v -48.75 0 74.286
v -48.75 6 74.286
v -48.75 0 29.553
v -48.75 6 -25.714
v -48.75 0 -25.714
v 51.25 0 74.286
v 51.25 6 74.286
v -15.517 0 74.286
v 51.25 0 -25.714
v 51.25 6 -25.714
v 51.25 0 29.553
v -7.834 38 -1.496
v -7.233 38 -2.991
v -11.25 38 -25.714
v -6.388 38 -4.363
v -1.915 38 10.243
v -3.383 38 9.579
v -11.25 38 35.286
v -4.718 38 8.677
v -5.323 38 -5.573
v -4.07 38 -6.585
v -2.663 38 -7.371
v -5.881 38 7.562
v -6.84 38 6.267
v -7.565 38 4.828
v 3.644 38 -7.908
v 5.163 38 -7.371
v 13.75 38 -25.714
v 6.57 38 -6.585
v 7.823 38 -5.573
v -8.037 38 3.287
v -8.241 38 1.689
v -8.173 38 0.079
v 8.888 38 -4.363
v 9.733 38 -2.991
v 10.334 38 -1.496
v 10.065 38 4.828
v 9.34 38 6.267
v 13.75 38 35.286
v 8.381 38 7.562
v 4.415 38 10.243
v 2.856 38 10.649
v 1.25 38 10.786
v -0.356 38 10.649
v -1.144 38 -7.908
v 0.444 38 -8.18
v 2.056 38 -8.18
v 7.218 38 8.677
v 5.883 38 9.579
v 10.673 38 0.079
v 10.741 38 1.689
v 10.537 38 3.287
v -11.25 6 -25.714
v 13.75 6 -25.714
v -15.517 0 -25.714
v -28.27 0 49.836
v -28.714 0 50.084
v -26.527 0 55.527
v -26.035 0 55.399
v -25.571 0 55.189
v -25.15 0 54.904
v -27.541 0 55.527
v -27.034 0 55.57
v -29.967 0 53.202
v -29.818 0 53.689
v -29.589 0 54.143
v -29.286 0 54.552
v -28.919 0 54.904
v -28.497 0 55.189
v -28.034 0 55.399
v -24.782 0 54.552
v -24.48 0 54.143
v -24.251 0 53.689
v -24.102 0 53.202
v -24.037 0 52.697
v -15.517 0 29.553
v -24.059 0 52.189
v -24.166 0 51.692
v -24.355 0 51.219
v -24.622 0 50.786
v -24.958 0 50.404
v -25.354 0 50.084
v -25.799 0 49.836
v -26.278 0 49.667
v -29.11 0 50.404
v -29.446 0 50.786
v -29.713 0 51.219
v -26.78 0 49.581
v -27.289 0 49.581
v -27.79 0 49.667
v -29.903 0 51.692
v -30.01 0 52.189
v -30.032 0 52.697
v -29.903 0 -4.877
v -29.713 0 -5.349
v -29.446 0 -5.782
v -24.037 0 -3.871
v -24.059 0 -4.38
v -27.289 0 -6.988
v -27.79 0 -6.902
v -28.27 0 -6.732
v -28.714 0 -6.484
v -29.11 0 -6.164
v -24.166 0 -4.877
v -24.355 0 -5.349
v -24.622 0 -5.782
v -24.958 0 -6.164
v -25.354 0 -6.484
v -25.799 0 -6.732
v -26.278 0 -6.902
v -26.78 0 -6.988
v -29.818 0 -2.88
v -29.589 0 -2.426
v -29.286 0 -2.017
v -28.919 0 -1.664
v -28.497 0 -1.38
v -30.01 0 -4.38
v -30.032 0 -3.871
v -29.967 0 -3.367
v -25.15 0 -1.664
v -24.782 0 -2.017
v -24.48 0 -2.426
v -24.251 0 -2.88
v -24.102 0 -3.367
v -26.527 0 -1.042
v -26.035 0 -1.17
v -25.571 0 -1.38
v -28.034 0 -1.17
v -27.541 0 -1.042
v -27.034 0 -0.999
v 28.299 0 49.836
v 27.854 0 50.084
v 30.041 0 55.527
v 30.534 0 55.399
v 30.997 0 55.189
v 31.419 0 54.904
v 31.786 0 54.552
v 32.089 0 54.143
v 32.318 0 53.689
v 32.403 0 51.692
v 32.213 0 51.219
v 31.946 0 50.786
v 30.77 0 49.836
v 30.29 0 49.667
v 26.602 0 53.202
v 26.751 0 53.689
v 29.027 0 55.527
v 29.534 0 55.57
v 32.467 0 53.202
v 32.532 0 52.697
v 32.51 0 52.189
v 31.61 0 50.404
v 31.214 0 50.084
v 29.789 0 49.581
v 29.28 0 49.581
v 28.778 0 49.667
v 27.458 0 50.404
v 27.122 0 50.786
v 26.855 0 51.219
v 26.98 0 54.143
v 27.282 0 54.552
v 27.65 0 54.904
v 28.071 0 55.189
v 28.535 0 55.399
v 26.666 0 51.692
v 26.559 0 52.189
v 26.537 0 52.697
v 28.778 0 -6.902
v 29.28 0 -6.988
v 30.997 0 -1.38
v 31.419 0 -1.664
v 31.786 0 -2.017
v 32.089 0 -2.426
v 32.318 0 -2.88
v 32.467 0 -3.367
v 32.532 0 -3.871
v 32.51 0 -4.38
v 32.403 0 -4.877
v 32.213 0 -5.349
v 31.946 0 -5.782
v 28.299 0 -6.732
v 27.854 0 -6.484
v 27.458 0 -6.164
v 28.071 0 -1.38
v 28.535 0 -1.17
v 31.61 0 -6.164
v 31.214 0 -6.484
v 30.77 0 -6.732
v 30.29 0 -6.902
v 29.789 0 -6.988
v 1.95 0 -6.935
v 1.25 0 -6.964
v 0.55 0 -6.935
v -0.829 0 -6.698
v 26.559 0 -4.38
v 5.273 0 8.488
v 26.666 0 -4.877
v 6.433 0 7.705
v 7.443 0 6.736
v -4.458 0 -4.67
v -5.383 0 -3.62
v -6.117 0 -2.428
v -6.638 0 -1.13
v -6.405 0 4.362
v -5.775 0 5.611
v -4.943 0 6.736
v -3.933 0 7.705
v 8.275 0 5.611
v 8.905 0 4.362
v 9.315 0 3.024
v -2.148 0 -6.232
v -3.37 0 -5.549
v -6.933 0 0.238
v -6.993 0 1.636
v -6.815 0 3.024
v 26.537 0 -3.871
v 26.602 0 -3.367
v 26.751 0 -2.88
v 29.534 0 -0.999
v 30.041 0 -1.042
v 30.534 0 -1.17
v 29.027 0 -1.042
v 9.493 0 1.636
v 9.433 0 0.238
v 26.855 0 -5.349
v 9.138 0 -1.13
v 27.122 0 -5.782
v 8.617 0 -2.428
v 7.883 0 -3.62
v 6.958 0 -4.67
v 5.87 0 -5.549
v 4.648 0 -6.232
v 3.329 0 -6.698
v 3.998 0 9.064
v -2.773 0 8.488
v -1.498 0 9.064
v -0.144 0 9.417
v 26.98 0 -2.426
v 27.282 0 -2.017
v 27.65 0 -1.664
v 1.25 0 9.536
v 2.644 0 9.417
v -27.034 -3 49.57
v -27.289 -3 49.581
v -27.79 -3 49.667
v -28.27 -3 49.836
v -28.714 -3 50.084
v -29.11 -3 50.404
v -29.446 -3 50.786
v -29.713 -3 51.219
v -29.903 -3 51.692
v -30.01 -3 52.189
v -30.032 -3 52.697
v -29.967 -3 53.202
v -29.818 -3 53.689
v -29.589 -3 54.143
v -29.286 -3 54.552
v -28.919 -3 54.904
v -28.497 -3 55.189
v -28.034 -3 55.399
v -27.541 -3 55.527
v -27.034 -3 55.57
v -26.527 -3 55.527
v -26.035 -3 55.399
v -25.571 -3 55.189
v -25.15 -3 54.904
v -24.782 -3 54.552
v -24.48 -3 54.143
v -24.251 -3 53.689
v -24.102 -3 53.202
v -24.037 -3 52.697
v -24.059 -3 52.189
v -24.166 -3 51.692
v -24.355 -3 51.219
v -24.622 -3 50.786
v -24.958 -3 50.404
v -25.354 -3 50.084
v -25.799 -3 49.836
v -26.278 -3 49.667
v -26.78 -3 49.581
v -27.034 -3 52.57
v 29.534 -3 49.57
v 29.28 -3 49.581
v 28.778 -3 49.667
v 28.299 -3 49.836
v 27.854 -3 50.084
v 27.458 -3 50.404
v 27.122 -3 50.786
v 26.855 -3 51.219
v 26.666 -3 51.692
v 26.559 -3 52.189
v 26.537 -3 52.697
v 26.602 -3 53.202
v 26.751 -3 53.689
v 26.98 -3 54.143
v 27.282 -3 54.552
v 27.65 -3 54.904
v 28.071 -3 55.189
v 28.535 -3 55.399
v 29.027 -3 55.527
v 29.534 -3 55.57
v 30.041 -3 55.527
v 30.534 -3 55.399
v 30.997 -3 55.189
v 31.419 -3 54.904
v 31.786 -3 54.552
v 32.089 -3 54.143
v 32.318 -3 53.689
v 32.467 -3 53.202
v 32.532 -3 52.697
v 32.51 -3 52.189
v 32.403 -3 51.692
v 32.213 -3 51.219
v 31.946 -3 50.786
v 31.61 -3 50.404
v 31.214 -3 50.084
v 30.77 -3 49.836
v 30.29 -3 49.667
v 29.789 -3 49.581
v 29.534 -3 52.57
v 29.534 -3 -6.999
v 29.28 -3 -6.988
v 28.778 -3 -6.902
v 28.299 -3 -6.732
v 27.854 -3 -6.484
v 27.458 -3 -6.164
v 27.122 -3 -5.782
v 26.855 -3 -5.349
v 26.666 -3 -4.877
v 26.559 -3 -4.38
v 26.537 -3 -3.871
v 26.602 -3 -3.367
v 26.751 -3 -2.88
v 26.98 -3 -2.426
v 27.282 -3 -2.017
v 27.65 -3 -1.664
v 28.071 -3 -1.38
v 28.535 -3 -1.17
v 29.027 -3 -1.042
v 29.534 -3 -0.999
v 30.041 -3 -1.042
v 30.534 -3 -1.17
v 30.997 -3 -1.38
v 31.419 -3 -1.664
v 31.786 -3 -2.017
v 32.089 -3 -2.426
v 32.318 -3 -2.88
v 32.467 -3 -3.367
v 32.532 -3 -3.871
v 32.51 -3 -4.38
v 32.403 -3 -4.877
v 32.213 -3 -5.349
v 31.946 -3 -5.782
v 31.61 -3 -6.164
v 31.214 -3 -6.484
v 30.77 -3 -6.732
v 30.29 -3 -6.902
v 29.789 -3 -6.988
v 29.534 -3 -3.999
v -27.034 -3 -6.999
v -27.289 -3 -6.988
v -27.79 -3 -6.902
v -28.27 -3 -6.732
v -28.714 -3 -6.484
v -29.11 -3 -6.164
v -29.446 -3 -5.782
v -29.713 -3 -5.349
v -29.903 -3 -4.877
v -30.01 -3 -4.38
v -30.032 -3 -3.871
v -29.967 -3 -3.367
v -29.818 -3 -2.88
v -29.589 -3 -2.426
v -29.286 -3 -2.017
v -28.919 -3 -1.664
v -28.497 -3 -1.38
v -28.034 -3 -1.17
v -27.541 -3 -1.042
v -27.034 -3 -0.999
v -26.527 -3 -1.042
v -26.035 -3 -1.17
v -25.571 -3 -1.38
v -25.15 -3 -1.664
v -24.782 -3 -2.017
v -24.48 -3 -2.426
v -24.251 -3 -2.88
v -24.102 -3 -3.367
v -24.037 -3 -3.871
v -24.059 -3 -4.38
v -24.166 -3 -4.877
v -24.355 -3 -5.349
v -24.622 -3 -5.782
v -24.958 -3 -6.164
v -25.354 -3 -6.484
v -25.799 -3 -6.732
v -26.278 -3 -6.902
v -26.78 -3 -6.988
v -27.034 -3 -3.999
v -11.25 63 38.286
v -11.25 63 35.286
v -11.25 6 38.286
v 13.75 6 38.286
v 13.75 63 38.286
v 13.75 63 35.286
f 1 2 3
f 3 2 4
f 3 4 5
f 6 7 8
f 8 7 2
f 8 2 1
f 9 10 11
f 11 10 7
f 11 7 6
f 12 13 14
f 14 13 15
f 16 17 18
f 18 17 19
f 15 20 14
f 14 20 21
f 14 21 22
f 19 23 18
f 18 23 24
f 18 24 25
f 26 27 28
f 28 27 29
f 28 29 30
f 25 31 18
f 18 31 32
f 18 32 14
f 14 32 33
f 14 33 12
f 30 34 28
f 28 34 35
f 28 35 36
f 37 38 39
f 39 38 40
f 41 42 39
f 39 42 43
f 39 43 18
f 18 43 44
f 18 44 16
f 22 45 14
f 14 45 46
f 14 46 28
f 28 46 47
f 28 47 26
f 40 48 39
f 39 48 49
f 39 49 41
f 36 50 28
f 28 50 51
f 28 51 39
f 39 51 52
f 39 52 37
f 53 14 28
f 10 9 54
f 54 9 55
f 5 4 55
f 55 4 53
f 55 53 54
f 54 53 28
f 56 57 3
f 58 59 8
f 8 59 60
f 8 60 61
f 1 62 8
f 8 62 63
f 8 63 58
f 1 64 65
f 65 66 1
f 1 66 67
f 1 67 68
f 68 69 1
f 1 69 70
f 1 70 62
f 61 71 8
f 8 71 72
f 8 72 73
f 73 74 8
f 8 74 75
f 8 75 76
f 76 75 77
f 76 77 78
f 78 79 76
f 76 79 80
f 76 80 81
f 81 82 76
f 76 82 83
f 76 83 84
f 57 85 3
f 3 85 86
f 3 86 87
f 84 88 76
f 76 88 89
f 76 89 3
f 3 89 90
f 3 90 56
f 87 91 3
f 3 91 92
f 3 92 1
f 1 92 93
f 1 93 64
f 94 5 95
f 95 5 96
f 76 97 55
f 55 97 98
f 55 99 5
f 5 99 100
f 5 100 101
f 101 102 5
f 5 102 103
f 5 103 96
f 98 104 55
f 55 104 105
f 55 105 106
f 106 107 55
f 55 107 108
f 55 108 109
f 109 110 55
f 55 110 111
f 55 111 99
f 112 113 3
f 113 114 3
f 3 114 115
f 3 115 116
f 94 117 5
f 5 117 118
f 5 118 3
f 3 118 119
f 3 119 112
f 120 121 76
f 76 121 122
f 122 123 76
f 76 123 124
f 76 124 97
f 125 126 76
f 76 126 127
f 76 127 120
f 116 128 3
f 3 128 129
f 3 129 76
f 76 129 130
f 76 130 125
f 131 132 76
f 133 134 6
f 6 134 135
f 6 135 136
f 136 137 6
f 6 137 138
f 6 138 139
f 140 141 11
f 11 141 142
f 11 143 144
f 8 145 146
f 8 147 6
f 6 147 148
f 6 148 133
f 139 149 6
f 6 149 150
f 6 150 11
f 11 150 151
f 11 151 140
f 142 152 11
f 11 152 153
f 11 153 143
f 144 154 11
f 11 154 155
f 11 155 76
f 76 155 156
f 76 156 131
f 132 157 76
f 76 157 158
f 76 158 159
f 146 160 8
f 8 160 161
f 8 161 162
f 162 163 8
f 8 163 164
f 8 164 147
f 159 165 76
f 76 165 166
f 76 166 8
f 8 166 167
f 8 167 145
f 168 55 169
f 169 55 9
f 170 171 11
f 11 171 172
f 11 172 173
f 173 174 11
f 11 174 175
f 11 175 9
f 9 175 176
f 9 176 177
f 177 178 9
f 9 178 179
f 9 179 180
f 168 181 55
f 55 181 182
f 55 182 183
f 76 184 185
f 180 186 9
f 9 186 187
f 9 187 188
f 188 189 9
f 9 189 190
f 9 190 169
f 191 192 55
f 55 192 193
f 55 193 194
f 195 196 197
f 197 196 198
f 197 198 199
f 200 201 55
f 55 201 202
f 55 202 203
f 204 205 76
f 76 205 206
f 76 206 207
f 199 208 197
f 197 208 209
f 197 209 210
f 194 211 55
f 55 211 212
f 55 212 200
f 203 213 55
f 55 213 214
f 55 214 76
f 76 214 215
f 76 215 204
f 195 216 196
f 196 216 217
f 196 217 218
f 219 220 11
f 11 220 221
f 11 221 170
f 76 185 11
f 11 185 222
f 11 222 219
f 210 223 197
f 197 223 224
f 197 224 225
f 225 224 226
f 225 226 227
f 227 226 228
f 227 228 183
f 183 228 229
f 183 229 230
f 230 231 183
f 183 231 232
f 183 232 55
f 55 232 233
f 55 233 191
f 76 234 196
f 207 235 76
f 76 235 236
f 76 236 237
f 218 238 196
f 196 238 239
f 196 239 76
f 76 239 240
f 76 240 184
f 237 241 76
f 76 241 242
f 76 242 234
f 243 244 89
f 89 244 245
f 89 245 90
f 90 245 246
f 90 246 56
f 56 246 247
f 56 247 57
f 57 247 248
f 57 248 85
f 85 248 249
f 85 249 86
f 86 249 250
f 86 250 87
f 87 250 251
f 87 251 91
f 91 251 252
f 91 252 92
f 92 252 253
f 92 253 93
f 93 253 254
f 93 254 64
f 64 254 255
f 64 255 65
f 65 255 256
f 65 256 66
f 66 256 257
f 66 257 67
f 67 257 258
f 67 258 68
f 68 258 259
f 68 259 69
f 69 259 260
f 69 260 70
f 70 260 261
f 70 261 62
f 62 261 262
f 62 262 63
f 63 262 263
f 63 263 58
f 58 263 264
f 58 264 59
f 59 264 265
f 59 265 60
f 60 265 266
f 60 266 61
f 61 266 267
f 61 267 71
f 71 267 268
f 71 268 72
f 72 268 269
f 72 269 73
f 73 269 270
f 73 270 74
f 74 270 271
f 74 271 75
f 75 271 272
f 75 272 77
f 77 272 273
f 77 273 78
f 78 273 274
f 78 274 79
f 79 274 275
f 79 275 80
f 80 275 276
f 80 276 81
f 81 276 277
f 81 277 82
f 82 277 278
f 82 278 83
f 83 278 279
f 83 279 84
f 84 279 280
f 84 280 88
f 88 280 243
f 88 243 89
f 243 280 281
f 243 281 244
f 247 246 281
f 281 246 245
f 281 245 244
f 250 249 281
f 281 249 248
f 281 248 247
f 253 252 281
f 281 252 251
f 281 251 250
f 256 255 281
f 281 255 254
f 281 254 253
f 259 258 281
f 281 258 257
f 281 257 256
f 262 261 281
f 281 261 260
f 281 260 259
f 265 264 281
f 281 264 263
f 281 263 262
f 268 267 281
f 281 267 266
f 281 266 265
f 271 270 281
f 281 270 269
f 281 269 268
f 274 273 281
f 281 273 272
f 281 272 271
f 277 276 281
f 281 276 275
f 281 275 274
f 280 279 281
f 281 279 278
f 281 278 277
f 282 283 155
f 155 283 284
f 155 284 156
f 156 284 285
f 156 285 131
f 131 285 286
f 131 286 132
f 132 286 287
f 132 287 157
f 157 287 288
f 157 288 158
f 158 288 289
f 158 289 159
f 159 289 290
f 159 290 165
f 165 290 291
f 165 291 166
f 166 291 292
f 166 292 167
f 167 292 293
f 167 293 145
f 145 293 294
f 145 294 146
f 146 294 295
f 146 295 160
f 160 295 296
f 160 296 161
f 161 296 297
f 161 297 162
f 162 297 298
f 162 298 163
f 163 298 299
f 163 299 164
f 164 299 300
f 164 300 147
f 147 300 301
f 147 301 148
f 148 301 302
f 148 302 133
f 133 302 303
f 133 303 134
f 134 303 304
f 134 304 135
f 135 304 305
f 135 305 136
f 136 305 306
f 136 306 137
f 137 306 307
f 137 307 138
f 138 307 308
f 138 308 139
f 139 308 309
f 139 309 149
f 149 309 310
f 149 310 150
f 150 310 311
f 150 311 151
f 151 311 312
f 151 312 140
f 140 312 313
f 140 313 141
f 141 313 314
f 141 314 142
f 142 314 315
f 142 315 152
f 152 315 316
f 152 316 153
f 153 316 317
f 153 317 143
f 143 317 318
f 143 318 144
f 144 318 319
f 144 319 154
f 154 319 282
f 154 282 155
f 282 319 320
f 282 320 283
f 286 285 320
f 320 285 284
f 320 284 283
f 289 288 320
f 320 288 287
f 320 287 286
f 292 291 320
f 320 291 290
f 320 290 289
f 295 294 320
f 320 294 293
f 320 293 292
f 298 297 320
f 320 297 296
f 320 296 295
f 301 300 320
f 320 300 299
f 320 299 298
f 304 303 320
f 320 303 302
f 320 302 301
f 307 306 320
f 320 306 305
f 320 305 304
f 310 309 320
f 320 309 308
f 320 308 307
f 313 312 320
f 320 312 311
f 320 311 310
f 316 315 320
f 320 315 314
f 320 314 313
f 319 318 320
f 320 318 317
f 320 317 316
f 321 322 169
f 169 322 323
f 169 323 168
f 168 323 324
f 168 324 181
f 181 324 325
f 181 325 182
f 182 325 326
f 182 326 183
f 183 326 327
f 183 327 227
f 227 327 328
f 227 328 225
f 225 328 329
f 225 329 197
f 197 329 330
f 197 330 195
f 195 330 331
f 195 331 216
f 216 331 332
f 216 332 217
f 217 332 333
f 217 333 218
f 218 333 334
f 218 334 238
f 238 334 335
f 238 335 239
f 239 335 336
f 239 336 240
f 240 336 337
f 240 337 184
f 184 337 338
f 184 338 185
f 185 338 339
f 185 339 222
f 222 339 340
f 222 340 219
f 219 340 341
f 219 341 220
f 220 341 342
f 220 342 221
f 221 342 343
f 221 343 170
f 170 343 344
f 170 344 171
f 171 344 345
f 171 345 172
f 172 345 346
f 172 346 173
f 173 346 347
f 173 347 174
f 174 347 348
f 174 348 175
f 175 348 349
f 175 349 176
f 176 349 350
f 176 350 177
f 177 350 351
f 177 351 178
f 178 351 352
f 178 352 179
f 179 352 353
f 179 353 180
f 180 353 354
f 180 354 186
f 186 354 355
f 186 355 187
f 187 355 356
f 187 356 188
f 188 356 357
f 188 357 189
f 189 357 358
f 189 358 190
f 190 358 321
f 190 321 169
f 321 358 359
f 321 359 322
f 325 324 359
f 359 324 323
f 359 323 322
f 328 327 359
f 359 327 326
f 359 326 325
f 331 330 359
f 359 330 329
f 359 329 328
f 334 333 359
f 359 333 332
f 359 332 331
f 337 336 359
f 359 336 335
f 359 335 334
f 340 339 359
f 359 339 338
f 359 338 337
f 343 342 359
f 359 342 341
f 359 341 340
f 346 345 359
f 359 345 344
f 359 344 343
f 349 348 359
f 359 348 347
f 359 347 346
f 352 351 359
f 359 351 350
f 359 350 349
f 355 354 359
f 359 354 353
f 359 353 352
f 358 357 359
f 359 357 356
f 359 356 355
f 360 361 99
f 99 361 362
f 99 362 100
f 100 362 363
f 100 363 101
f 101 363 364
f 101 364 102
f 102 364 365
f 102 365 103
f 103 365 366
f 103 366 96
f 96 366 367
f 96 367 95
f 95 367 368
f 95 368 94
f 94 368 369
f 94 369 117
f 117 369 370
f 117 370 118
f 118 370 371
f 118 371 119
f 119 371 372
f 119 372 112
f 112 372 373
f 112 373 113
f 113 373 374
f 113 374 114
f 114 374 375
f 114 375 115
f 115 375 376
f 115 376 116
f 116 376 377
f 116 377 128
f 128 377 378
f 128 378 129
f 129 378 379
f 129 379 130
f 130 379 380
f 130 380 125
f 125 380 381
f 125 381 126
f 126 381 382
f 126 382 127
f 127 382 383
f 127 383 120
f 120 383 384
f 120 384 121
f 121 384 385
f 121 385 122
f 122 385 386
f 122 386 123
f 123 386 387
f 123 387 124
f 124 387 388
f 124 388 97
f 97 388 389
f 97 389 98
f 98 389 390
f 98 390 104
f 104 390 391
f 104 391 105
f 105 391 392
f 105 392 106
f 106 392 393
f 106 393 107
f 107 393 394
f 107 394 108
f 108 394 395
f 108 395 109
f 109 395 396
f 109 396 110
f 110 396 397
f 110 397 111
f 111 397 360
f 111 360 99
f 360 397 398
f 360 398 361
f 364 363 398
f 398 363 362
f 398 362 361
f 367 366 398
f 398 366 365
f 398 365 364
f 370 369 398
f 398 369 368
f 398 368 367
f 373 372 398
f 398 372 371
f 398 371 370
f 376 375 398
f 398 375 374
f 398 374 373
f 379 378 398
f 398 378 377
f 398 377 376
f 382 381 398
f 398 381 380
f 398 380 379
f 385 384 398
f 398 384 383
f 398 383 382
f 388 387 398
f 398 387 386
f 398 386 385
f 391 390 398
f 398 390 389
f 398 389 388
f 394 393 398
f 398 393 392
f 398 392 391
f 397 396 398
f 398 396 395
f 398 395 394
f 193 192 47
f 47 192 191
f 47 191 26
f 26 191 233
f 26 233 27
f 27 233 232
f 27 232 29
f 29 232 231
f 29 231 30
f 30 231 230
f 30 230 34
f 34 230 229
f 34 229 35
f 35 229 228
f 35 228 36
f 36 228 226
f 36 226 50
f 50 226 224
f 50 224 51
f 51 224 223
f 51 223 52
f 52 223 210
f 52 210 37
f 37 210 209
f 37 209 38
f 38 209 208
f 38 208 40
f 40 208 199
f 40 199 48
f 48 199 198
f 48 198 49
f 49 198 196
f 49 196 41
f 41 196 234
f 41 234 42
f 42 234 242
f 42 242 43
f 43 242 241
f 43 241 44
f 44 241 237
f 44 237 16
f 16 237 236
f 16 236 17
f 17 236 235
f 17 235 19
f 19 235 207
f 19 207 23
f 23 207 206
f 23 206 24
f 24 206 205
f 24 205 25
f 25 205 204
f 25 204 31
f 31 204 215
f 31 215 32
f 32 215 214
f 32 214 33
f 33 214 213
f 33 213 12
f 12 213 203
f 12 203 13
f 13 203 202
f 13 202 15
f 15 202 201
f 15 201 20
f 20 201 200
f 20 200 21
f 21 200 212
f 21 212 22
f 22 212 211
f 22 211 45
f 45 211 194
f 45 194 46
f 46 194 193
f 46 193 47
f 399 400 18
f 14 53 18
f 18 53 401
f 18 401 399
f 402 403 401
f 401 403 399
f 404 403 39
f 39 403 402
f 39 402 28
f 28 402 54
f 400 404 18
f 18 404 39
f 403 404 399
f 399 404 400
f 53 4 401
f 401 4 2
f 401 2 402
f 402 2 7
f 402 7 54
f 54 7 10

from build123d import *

# Parameters (mm, degrees)
SKETCH1_W           = 100
SKETCH1_H           = 100
BOSS_EXTRUDE1_DEPTH = 38
SKETCH3_R           = 3
BOSS_EXTRUDE2_DEPTH = 3
SKETCH4_R           = 8.25
SKETCH5_R           = 9.5
SKETCH6_W           = 25
SKETCH6_H           = 3
BOSS_EXTRUDE3_DEPTH = 25
CUT_EXTRUDE3_DEPTH  = 32


with BuildPart() as part:
    # Sketch1 → Boss-Extrude1 (new body)
    with BuildSketch(Plane(origin=(0, 0, 0), x_dir=(1, 0, 0), z_dir=(0, 1, 0))):
        with Locations((1.25, -24.285714286)):
            Rectangle(SKETCH1_W, SKETCH1_H)
    extrude(amount=BOSS_EXTRUDE1_DEPTH)

    # Sketch3 → Boss-Extrude2 (add)
    with BuildSketch(Plane.XZ):
        with Locations(Location((-27.034271247, 52.569985533, 0), (0, 0, 90))):
            Circle(SKETCH3_R)
        with Locations(Location((29.534271247, 52.569985533, 0), (0, 0, 90))):
            Circle(SKETCH3_R)
        with Locations(Location((29.534271247, -3.998556962, 0), (0, 0, 90))):
            Circle(SKETCH3_R)
        with Locations(Location((-27.034271247, -3.998556962, 0), (0, 0, 90))):
            Circle(SKETCH3_R)
    extrude(amount=BOSS_EXTRUDE2_DEPTH)

    # Sketch4 → Cut-Loft1 section 0
    with BuildSketch(Plane.XZ):
        with Locations((1.25, 1.285714286)):
            Circle(SKETCH4_R)
    # Sketch5 → Cut-Loft1 section 1
    with BuildSketch(Plane(origin=(0, 38, 0), x_dir=(1, 0, 0), z_dir=(0, 1, 0))):
        with Locations((1.25, -1.285714286)):
            Circle(SKETCH5_R)
    loft(mode=Mode.SUBTRACT)

    # Sketch6 → Boss-Extrude3 (add)
    with BuildSketch(Plane(origin=(0, 38, 0), x_dir=(1, 0, 0), z_dir=(0, 1, 0))):
        with Locations((1.25, -36.785714286)):
            Rectangle(SKETCH6_W, SKETCH6_H)
    extrude(amount=BOSS_EXTRUDE3_DEPTH)

    # Sketch9 → Cut-Extrude3 (cut)
    with BuildSketch(Plane(origin=(0, 38, 0), x_dir=(1, 0, 0), z_dir=(0, 1, 0))):
        Polygon((-49.799740752, 27.751403127), (-11.25, 27.751403127), (-11.25, -38.285714286), (13.75, -38.285714286), (13.75, 28.556619644), (53.406913463, 28.556619644), (53.406913463, -79.342393637), (26.184866917, -79.342393637), (26.184866917, -84.038284162), (-21.600270932, -84.038284162), (-21.600270932, -78.738481249), (-49.799740752, -78.738481249), align=None)
    extrude(amount=-CUT_EXTRUDE3_DEPTH, mode=Mode.SUBTRACT)


solid = part.part
